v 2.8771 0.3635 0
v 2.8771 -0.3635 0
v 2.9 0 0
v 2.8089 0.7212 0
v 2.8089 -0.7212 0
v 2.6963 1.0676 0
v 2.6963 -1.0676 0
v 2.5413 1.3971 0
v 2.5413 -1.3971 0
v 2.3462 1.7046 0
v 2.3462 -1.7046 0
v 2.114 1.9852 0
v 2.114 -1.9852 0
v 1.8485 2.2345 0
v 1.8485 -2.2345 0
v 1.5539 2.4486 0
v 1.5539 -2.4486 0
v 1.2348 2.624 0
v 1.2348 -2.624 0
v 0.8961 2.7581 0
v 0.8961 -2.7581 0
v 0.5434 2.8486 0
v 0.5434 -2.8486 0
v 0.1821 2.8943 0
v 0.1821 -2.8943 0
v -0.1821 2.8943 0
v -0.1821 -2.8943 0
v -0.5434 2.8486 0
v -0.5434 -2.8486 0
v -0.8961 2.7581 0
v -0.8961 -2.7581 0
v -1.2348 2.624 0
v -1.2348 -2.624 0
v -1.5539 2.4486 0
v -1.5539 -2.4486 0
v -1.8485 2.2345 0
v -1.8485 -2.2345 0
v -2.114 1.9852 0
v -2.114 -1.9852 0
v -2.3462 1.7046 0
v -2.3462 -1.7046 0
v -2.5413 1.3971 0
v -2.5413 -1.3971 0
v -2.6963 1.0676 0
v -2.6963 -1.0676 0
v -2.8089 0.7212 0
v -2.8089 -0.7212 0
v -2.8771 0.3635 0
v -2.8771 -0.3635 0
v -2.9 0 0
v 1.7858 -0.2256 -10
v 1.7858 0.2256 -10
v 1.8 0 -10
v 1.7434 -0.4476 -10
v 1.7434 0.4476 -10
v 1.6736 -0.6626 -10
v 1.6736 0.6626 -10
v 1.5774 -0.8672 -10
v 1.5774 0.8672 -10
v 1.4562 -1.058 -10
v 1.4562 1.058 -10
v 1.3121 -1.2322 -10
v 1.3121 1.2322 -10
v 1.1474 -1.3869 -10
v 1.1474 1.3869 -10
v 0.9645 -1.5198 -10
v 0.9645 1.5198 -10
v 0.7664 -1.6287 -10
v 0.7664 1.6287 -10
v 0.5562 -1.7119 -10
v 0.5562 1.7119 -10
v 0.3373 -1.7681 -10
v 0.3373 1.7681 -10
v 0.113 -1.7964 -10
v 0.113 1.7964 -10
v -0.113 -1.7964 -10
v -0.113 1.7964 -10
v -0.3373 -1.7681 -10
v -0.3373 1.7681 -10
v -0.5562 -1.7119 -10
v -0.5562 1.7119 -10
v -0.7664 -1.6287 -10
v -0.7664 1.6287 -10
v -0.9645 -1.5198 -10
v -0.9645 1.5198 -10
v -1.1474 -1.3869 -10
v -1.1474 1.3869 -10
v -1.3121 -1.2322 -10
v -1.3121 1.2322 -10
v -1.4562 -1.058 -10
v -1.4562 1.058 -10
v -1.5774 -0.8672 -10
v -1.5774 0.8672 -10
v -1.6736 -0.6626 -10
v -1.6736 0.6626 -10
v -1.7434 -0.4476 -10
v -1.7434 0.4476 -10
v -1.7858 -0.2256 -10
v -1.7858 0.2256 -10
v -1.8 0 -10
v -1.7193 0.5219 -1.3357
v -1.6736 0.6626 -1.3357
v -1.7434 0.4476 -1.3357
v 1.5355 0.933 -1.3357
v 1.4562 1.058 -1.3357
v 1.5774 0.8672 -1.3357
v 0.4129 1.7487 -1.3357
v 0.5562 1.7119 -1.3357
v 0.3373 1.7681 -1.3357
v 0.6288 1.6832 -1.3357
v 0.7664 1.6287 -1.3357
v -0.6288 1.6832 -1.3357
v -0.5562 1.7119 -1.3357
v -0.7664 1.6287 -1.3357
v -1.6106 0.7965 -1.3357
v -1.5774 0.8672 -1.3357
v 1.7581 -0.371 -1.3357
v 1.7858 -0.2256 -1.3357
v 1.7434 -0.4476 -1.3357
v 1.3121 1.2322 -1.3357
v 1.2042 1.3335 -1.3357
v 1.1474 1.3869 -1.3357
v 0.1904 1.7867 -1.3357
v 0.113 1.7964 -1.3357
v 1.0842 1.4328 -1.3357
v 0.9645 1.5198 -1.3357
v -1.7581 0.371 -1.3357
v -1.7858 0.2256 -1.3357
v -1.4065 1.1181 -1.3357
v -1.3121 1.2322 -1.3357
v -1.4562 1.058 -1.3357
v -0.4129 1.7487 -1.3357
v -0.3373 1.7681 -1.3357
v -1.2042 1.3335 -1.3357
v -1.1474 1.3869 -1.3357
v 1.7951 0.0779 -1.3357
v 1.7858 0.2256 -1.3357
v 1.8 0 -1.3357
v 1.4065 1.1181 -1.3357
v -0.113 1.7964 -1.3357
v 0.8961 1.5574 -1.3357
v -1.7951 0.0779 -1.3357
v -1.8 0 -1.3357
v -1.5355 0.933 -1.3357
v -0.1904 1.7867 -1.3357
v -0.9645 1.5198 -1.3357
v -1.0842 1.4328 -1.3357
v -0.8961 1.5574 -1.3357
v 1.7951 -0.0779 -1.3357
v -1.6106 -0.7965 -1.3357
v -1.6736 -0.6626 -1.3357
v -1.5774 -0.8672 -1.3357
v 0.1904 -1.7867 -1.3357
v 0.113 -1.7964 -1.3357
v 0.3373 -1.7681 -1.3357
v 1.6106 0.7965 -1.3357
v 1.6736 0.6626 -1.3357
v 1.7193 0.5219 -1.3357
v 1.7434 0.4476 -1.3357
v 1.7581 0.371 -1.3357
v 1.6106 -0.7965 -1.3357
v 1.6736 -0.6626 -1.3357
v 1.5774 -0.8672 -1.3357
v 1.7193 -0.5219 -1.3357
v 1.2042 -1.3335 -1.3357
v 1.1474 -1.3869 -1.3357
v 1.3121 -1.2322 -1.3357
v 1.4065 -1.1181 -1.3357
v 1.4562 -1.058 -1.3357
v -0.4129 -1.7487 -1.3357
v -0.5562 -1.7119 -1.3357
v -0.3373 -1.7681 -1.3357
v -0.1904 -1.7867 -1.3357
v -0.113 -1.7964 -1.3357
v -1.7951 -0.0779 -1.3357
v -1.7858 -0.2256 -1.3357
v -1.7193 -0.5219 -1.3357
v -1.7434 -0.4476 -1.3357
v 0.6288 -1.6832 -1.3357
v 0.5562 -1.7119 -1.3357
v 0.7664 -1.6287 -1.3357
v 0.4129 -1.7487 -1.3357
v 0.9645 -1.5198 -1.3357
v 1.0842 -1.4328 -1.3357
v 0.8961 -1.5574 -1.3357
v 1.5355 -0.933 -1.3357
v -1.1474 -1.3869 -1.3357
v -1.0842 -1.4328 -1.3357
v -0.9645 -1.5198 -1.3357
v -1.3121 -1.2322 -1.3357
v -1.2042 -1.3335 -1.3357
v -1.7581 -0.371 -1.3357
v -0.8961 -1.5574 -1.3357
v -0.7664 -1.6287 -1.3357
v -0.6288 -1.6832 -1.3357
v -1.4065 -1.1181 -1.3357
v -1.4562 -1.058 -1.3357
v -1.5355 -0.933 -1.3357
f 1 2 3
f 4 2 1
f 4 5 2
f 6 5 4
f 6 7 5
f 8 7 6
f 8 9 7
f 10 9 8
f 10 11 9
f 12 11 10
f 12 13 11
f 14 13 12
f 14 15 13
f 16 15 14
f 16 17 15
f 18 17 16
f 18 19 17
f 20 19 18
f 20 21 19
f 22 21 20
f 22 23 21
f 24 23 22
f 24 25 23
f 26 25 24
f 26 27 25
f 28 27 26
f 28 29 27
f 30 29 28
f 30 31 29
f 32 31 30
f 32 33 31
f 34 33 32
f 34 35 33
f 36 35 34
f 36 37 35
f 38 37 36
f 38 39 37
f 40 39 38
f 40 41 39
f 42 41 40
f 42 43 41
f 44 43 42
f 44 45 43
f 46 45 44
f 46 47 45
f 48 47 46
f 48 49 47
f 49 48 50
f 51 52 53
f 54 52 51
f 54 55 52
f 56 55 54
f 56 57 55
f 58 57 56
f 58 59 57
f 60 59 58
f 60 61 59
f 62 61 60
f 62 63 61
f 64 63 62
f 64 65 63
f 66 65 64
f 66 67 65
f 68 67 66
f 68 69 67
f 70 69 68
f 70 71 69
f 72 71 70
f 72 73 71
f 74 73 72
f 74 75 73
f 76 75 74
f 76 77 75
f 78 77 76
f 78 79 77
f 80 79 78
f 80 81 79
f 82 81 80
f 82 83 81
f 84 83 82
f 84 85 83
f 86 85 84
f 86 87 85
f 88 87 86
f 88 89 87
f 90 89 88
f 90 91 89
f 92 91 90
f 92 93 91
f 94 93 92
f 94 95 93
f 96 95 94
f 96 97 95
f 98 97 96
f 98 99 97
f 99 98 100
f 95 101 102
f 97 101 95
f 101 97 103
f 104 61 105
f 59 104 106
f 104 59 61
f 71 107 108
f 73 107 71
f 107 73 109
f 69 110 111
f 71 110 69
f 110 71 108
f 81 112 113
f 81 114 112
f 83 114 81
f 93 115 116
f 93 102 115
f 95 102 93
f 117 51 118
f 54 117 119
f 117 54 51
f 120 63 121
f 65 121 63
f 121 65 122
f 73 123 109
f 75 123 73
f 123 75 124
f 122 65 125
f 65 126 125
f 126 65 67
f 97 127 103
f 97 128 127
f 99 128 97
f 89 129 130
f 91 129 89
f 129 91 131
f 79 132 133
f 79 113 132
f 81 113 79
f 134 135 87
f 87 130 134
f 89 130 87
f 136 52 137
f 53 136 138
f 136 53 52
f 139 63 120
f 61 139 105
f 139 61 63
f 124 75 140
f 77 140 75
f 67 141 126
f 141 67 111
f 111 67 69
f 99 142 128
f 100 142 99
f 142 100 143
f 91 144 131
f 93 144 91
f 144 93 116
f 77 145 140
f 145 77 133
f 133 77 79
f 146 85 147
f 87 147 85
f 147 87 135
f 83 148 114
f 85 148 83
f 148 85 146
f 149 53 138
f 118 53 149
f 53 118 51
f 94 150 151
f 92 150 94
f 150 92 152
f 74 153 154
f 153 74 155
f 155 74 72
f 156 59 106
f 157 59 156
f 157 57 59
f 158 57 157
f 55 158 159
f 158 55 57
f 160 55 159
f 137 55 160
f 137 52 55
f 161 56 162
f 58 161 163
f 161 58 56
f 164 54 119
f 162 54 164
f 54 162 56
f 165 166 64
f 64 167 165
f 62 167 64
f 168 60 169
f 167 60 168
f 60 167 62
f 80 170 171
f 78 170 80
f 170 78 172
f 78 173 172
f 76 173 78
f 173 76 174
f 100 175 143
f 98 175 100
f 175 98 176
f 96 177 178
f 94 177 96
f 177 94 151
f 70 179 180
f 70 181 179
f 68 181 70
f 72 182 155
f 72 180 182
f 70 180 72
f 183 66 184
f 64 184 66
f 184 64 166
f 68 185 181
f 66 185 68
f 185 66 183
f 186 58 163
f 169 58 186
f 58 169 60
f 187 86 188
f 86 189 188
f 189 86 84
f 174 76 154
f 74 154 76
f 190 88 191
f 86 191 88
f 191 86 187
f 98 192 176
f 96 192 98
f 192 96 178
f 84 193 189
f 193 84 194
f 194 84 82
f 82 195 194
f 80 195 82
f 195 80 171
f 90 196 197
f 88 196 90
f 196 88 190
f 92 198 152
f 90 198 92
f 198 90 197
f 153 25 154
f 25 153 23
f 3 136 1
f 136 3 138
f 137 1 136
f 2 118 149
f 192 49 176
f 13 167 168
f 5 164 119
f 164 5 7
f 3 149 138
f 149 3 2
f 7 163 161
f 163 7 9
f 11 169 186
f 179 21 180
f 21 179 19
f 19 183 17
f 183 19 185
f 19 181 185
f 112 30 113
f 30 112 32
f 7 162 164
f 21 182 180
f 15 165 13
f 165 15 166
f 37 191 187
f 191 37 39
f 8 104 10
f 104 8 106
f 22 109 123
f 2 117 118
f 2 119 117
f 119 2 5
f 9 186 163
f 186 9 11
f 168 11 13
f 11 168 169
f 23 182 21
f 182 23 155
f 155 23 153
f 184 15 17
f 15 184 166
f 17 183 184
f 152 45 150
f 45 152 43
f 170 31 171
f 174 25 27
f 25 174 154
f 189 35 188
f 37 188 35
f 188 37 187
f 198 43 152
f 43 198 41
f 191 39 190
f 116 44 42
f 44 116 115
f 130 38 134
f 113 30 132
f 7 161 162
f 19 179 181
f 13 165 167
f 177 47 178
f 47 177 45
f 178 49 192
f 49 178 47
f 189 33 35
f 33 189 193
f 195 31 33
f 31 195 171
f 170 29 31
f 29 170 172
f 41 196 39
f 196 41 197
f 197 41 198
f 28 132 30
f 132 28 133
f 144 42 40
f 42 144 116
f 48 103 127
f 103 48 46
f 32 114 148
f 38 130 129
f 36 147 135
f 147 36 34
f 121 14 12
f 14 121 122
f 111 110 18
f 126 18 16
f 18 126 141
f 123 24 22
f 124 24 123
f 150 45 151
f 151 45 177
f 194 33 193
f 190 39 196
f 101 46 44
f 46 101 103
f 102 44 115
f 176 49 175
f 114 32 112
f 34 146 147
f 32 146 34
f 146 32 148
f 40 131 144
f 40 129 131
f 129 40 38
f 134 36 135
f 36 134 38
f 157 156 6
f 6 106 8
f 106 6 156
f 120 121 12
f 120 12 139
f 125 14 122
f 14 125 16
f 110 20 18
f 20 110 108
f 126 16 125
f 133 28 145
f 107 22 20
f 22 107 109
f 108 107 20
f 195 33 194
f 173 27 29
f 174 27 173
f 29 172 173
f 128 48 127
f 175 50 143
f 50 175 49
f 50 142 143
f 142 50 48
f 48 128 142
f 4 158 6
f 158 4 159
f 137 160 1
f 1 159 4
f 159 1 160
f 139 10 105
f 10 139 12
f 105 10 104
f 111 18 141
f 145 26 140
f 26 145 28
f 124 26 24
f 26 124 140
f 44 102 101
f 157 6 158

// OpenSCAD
$fn = 50;


difference() {
	union() {
		translate(v = [0, 0, 0]) {
			rotate(a = [0, 0, 0]) {
				difference() {
					union() {
						translate(v = [0, 0, -10.0000000000]) {
							cylinder(h = 10, r = 1.5000000000);
						}
						translate(v = [0, 0, -10.0000000000]) {
							cylinder(h = 10, r = 1.8000000000);
						}
						translate(v = [0, 0, -1.7000000000]) {
							cylinder(h = 1.7000000000, r1 = 1.5000000000, r2 = 2.9000000000);
						}
						translate(v = [0, 0, -10.0000000000]) {
							cylinder(h = 10, r = 1.5000000000);
						}
					}
					union();
				}
			}
		}
	}
	union();
}
